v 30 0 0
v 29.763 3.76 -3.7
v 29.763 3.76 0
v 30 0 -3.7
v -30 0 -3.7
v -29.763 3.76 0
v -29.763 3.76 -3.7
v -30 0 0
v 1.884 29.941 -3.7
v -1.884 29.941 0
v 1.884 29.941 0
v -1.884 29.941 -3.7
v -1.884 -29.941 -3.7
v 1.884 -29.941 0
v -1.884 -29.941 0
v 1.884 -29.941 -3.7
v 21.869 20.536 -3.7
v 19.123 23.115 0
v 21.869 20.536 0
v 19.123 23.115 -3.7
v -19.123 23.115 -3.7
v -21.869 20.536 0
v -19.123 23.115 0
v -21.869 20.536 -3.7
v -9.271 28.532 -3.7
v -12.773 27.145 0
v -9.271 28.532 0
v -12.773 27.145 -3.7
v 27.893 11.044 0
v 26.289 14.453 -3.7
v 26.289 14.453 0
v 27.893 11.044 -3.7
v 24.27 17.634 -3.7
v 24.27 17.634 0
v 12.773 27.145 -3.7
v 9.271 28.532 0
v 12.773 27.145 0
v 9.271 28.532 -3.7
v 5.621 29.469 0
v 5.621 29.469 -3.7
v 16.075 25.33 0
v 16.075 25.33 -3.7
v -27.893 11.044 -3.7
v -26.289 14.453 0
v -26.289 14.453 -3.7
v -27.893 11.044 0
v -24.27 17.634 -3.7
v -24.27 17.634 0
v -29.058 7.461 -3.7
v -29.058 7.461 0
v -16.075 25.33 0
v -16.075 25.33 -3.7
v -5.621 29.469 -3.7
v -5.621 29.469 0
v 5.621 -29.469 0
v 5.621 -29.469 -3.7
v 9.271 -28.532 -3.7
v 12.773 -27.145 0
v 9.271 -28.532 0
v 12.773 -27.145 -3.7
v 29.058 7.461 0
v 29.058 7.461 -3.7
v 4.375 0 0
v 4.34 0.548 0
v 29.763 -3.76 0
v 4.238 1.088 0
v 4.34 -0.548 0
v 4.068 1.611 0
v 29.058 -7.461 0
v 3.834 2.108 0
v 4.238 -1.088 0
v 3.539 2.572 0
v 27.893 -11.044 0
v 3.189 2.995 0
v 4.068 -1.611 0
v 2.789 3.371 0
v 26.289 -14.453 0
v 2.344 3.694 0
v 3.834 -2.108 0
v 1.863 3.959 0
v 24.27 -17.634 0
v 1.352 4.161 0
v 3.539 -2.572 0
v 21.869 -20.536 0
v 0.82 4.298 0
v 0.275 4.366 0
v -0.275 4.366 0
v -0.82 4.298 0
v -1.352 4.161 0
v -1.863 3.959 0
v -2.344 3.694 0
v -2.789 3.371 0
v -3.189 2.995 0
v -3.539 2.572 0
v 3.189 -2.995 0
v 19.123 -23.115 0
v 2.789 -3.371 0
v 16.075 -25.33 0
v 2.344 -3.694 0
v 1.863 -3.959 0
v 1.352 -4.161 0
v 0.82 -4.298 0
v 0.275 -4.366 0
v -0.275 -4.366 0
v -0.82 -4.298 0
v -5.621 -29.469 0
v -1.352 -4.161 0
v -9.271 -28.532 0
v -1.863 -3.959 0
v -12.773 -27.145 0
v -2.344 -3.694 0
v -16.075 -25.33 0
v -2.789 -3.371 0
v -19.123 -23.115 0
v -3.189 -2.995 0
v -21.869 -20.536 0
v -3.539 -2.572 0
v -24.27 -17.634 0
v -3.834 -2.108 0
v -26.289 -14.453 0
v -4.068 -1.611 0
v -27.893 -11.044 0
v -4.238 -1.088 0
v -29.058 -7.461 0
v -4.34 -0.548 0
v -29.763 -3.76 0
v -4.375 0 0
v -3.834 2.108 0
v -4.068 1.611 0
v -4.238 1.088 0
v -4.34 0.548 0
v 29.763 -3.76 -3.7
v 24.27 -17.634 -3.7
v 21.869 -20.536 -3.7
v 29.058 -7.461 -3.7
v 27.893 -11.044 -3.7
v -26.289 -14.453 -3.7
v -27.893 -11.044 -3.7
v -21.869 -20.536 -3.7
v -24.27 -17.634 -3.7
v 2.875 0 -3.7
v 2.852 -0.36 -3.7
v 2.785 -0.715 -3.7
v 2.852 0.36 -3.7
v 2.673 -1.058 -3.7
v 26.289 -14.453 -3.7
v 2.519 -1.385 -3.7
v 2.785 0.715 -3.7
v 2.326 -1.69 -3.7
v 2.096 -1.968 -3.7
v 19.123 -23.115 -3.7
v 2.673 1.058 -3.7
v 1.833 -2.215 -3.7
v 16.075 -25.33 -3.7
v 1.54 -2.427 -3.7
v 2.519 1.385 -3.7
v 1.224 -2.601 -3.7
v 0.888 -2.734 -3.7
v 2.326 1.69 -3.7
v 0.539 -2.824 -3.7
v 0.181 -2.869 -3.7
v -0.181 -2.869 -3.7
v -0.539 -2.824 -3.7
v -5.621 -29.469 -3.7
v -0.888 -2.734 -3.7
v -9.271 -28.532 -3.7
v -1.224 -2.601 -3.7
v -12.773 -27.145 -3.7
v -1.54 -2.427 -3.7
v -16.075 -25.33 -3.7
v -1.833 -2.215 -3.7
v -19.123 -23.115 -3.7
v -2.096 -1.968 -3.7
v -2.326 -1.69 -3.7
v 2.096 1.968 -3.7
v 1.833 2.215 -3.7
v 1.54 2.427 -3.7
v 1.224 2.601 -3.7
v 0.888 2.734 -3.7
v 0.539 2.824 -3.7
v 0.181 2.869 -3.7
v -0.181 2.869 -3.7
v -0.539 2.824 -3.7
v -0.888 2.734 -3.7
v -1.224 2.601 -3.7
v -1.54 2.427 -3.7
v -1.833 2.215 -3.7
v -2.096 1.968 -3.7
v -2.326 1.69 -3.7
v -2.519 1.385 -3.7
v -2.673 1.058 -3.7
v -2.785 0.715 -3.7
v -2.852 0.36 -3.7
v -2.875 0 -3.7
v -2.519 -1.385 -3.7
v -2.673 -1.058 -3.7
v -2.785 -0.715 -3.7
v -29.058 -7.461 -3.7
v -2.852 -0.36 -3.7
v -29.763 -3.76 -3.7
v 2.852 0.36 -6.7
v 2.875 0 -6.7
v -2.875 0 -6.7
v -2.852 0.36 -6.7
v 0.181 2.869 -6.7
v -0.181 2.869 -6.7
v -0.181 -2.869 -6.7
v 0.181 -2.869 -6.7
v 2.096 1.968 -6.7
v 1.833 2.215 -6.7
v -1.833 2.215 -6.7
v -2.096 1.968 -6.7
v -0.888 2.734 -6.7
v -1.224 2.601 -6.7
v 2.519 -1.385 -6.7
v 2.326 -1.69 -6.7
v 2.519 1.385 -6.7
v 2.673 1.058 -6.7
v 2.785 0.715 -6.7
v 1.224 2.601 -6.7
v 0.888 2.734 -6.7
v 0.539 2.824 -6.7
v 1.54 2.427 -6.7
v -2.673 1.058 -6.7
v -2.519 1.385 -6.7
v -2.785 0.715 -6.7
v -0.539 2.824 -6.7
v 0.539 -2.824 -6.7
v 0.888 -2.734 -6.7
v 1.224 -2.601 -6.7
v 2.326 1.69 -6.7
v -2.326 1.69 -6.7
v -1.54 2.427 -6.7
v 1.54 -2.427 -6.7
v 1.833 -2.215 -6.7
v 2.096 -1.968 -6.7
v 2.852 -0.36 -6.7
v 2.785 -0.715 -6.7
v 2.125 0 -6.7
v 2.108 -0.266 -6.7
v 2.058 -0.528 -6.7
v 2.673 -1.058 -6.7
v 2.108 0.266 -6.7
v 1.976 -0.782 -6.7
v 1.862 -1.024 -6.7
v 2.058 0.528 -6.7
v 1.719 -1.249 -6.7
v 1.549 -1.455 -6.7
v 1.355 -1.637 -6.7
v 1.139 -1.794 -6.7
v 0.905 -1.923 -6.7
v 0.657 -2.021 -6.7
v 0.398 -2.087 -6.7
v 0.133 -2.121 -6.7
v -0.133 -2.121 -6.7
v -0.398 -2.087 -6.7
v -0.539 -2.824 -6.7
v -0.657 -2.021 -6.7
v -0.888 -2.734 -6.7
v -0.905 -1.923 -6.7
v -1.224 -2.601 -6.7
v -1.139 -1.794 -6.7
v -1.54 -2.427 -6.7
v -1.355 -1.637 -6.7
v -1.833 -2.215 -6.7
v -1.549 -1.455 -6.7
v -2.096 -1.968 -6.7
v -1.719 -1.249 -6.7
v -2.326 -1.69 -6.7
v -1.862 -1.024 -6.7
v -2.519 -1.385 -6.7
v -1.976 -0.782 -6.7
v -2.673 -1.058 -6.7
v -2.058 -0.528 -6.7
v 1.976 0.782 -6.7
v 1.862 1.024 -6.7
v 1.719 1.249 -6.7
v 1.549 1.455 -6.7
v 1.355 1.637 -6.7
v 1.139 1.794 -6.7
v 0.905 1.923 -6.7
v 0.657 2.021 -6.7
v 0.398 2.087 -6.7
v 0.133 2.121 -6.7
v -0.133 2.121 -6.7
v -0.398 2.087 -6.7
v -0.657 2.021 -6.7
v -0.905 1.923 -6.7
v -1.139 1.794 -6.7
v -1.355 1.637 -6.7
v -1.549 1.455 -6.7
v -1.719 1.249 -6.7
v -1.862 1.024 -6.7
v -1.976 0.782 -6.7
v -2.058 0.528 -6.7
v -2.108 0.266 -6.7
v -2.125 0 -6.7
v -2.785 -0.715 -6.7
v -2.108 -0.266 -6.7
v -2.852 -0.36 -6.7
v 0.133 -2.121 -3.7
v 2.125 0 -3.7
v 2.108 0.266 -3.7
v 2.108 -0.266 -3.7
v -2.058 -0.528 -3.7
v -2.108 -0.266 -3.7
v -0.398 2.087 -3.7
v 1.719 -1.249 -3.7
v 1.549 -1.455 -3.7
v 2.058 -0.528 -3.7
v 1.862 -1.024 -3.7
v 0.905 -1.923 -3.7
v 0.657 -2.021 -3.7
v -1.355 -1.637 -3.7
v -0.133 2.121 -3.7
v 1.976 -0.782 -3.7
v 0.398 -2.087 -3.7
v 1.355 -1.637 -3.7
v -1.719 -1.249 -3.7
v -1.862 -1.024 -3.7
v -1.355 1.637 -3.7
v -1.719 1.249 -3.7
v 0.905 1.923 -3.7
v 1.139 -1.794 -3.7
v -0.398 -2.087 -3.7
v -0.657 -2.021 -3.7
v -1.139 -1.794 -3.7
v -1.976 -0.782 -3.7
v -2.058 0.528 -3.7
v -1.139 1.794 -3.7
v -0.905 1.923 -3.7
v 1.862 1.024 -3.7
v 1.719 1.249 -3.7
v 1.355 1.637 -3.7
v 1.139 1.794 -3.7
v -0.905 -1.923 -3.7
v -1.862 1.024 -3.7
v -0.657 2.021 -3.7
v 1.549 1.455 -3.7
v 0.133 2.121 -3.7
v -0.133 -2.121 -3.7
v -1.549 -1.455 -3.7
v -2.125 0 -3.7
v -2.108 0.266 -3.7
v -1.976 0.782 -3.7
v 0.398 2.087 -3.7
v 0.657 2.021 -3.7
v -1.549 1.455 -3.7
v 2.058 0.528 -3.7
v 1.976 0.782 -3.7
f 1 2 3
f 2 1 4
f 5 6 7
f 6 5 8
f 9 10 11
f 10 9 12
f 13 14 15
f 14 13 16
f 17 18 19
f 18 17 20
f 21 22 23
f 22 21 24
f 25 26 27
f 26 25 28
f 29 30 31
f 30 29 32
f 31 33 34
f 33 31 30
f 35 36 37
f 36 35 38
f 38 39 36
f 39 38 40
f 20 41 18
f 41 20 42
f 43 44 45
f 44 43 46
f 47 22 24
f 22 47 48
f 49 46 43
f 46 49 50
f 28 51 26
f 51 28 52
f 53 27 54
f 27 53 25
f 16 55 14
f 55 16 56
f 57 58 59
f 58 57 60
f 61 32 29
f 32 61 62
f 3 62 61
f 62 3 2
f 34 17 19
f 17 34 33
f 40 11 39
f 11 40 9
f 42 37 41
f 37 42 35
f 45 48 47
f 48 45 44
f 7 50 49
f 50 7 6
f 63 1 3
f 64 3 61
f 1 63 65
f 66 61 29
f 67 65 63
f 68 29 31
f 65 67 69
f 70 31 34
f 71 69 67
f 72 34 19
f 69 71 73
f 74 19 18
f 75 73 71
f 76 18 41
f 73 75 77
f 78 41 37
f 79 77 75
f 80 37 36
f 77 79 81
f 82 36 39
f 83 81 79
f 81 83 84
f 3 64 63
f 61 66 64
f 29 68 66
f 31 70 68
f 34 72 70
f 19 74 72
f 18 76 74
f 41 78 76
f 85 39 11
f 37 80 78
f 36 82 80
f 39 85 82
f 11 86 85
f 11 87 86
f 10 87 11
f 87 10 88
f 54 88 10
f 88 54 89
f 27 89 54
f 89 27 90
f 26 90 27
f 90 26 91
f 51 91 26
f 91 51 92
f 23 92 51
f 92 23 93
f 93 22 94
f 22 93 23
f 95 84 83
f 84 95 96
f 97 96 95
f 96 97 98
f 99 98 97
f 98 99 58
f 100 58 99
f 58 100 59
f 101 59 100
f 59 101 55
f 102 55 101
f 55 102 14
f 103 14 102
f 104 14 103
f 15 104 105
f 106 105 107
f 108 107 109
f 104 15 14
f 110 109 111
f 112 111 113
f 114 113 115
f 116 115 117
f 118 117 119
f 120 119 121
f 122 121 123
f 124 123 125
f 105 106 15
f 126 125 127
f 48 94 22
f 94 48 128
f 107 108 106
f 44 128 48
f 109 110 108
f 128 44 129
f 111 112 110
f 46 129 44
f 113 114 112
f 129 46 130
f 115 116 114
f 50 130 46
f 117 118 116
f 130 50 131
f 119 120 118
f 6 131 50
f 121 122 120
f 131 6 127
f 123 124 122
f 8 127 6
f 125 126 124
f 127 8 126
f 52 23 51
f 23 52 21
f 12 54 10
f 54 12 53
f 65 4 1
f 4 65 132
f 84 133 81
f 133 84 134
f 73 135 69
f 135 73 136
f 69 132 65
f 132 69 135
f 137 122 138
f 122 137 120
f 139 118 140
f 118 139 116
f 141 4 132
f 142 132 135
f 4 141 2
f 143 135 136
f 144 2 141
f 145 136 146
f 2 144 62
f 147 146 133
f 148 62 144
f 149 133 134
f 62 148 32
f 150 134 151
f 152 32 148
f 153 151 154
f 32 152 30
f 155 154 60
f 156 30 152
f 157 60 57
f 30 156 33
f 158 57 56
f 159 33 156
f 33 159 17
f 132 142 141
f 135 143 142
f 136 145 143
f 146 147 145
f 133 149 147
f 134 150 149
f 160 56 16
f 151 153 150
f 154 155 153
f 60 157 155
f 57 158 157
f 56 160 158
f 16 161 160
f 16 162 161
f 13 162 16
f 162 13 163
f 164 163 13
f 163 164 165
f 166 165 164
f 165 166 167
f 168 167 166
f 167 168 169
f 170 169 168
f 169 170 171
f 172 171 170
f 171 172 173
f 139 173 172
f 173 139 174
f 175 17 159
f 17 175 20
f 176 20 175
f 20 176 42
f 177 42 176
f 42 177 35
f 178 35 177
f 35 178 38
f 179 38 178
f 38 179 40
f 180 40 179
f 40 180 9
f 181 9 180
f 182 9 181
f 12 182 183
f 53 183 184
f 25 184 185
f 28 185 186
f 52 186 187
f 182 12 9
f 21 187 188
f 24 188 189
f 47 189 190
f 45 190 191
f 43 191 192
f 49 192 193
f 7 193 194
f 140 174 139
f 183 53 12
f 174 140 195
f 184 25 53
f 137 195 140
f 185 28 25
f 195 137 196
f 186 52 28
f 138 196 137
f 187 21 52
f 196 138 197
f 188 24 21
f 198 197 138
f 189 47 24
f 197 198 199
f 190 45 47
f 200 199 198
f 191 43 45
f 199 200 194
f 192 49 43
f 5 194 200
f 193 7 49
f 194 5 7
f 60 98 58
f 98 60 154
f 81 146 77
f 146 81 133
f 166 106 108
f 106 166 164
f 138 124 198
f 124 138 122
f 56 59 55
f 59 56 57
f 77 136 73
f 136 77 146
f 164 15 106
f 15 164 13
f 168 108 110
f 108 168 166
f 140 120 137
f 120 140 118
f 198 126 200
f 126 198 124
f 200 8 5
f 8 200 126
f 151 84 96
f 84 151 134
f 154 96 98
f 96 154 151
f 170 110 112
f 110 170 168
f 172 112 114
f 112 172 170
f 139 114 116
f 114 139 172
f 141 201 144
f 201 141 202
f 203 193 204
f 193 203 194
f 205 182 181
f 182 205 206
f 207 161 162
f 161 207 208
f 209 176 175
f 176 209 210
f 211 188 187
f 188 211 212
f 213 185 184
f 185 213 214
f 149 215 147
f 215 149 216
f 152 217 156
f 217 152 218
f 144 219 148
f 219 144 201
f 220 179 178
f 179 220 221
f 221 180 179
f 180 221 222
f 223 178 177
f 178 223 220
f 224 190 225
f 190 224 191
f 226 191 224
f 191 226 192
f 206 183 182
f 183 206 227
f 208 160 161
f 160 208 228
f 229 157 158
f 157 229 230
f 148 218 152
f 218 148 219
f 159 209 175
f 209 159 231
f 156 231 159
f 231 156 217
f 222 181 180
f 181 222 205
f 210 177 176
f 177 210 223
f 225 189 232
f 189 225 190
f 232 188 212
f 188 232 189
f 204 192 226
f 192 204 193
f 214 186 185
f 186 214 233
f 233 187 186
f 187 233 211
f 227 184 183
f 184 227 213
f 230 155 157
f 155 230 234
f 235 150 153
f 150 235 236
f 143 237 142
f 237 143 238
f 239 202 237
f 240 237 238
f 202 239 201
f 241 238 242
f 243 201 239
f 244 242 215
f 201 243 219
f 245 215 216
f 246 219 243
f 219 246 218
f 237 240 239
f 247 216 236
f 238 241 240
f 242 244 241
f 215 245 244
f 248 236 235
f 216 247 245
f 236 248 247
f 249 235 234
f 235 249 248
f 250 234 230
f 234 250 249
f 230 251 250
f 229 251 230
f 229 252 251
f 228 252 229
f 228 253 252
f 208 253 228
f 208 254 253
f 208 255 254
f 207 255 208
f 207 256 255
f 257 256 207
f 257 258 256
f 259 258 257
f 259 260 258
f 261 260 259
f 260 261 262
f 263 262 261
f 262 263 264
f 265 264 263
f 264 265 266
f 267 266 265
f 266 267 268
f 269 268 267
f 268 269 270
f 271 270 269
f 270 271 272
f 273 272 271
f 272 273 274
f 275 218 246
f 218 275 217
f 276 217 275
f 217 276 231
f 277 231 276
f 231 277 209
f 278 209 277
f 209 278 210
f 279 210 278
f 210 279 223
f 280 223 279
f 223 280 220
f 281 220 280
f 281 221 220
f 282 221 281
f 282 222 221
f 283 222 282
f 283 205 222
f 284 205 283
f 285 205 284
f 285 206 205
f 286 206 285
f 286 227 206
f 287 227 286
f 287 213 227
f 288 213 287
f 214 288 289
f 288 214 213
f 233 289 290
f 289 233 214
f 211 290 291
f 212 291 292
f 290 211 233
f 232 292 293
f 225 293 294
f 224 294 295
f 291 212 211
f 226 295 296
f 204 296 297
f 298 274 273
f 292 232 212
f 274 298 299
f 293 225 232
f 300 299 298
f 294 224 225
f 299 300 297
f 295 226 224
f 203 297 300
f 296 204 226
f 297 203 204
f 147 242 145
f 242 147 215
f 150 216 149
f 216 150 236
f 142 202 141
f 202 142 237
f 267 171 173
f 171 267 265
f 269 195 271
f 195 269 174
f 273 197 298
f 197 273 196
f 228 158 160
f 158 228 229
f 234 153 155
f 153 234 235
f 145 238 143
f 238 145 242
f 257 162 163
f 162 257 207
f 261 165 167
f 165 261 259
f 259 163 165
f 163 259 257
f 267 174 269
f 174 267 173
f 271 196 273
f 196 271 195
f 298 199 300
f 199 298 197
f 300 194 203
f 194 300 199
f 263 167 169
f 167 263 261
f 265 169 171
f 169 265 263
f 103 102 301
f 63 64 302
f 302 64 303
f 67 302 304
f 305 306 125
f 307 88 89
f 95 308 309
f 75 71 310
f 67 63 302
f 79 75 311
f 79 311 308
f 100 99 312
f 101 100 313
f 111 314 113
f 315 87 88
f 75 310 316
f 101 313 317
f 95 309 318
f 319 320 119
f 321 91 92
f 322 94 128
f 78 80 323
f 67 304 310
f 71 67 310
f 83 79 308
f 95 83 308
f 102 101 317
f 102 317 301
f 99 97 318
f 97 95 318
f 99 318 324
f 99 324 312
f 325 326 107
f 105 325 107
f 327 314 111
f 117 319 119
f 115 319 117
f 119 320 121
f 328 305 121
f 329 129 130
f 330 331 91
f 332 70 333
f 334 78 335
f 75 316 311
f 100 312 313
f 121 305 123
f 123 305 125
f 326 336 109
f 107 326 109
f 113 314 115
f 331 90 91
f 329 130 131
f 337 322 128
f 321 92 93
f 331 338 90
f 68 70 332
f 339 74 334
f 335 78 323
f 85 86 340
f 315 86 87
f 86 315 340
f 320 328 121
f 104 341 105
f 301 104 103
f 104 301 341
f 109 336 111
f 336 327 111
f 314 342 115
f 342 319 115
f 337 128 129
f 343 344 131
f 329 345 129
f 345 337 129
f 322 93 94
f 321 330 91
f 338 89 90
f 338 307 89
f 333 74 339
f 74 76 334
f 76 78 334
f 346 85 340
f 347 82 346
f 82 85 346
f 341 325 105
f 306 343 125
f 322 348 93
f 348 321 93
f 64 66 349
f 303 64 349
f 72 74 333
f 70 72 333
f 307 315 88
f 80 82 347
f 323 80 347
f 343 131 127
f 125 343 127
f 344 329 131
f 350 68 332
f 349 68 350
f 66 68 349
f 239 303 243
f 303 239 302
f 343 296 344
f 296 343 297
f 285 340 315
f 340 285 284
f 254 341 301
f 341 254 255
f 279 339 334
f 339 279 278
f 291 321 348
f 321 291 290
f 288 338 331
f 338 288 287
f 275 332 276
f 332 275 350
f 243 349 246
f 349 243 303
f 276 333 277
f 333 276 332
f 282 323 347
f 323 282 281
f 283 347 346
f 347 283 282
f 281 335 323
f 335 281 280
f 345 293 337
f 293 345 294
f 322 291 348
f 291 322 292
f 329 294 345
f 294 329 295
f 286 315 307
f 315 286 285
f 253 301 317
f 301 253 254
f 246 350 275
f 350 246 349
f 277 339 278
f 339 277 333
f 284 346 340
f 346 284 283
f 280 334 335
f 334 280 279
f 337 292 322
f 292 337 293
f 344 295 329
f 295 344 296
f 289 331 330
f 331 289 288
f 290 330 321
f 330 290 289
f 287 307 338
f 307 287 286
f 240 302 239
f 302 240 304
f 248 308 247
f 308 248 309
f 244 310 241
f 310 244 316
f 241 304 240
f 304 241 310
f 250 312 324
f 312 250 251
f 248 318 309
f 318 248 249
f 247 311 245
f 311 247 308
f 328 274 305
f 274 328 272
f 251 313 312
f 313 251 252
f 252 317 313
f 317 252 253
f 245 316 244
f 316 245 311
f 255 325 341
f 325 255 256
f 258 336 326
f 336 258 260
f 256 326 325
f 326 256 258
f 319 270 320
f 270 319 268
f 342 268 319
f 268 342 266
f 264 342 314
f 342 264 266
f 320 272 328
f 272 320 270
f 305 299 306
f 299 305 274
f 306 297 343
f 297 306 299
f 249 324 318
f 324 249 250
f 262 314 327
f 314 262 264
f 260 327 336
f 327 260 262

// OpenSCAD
$fn = 50;


difference() {
	union() {
		translate(v = [0, 0, -3.7000000000]) {
			cylinder(h = 3.7000000000, r = 30.0000000000);
		}
		translate(v = [0, 0, -6.7000000000]) {
			cylinder(h = 6.7000000000, r = 2.8750000000);
		}
	}
	union() {
		translate(v = [0, 0, 0]) {
			rotate(a = [0, 0, 0]) {
				difference() {
					union() {
						translate(v = [0, 0, -6.7000000000]) {
							cylinder(h = 6.7000000000, r = 2.0000000000);
						}
						translate(v = [0, 0, -3.7000000000]) {
							cylinder(h = 3.7000000000, r1 = 2.1250000000, r2 = 4.3750000000);
						}
						translate(v = [0, 0, -6.7000000000]) {
							cylinder(h = 6.7000000000, r = 2.1250000000);
						}
						translate(v = [0, 0, -6.7000000000]) {
							cylinder(h = 6.7000000000, r = 2.0000000000);
						}
					}
					union();
				}
			}
		}
	}
}
